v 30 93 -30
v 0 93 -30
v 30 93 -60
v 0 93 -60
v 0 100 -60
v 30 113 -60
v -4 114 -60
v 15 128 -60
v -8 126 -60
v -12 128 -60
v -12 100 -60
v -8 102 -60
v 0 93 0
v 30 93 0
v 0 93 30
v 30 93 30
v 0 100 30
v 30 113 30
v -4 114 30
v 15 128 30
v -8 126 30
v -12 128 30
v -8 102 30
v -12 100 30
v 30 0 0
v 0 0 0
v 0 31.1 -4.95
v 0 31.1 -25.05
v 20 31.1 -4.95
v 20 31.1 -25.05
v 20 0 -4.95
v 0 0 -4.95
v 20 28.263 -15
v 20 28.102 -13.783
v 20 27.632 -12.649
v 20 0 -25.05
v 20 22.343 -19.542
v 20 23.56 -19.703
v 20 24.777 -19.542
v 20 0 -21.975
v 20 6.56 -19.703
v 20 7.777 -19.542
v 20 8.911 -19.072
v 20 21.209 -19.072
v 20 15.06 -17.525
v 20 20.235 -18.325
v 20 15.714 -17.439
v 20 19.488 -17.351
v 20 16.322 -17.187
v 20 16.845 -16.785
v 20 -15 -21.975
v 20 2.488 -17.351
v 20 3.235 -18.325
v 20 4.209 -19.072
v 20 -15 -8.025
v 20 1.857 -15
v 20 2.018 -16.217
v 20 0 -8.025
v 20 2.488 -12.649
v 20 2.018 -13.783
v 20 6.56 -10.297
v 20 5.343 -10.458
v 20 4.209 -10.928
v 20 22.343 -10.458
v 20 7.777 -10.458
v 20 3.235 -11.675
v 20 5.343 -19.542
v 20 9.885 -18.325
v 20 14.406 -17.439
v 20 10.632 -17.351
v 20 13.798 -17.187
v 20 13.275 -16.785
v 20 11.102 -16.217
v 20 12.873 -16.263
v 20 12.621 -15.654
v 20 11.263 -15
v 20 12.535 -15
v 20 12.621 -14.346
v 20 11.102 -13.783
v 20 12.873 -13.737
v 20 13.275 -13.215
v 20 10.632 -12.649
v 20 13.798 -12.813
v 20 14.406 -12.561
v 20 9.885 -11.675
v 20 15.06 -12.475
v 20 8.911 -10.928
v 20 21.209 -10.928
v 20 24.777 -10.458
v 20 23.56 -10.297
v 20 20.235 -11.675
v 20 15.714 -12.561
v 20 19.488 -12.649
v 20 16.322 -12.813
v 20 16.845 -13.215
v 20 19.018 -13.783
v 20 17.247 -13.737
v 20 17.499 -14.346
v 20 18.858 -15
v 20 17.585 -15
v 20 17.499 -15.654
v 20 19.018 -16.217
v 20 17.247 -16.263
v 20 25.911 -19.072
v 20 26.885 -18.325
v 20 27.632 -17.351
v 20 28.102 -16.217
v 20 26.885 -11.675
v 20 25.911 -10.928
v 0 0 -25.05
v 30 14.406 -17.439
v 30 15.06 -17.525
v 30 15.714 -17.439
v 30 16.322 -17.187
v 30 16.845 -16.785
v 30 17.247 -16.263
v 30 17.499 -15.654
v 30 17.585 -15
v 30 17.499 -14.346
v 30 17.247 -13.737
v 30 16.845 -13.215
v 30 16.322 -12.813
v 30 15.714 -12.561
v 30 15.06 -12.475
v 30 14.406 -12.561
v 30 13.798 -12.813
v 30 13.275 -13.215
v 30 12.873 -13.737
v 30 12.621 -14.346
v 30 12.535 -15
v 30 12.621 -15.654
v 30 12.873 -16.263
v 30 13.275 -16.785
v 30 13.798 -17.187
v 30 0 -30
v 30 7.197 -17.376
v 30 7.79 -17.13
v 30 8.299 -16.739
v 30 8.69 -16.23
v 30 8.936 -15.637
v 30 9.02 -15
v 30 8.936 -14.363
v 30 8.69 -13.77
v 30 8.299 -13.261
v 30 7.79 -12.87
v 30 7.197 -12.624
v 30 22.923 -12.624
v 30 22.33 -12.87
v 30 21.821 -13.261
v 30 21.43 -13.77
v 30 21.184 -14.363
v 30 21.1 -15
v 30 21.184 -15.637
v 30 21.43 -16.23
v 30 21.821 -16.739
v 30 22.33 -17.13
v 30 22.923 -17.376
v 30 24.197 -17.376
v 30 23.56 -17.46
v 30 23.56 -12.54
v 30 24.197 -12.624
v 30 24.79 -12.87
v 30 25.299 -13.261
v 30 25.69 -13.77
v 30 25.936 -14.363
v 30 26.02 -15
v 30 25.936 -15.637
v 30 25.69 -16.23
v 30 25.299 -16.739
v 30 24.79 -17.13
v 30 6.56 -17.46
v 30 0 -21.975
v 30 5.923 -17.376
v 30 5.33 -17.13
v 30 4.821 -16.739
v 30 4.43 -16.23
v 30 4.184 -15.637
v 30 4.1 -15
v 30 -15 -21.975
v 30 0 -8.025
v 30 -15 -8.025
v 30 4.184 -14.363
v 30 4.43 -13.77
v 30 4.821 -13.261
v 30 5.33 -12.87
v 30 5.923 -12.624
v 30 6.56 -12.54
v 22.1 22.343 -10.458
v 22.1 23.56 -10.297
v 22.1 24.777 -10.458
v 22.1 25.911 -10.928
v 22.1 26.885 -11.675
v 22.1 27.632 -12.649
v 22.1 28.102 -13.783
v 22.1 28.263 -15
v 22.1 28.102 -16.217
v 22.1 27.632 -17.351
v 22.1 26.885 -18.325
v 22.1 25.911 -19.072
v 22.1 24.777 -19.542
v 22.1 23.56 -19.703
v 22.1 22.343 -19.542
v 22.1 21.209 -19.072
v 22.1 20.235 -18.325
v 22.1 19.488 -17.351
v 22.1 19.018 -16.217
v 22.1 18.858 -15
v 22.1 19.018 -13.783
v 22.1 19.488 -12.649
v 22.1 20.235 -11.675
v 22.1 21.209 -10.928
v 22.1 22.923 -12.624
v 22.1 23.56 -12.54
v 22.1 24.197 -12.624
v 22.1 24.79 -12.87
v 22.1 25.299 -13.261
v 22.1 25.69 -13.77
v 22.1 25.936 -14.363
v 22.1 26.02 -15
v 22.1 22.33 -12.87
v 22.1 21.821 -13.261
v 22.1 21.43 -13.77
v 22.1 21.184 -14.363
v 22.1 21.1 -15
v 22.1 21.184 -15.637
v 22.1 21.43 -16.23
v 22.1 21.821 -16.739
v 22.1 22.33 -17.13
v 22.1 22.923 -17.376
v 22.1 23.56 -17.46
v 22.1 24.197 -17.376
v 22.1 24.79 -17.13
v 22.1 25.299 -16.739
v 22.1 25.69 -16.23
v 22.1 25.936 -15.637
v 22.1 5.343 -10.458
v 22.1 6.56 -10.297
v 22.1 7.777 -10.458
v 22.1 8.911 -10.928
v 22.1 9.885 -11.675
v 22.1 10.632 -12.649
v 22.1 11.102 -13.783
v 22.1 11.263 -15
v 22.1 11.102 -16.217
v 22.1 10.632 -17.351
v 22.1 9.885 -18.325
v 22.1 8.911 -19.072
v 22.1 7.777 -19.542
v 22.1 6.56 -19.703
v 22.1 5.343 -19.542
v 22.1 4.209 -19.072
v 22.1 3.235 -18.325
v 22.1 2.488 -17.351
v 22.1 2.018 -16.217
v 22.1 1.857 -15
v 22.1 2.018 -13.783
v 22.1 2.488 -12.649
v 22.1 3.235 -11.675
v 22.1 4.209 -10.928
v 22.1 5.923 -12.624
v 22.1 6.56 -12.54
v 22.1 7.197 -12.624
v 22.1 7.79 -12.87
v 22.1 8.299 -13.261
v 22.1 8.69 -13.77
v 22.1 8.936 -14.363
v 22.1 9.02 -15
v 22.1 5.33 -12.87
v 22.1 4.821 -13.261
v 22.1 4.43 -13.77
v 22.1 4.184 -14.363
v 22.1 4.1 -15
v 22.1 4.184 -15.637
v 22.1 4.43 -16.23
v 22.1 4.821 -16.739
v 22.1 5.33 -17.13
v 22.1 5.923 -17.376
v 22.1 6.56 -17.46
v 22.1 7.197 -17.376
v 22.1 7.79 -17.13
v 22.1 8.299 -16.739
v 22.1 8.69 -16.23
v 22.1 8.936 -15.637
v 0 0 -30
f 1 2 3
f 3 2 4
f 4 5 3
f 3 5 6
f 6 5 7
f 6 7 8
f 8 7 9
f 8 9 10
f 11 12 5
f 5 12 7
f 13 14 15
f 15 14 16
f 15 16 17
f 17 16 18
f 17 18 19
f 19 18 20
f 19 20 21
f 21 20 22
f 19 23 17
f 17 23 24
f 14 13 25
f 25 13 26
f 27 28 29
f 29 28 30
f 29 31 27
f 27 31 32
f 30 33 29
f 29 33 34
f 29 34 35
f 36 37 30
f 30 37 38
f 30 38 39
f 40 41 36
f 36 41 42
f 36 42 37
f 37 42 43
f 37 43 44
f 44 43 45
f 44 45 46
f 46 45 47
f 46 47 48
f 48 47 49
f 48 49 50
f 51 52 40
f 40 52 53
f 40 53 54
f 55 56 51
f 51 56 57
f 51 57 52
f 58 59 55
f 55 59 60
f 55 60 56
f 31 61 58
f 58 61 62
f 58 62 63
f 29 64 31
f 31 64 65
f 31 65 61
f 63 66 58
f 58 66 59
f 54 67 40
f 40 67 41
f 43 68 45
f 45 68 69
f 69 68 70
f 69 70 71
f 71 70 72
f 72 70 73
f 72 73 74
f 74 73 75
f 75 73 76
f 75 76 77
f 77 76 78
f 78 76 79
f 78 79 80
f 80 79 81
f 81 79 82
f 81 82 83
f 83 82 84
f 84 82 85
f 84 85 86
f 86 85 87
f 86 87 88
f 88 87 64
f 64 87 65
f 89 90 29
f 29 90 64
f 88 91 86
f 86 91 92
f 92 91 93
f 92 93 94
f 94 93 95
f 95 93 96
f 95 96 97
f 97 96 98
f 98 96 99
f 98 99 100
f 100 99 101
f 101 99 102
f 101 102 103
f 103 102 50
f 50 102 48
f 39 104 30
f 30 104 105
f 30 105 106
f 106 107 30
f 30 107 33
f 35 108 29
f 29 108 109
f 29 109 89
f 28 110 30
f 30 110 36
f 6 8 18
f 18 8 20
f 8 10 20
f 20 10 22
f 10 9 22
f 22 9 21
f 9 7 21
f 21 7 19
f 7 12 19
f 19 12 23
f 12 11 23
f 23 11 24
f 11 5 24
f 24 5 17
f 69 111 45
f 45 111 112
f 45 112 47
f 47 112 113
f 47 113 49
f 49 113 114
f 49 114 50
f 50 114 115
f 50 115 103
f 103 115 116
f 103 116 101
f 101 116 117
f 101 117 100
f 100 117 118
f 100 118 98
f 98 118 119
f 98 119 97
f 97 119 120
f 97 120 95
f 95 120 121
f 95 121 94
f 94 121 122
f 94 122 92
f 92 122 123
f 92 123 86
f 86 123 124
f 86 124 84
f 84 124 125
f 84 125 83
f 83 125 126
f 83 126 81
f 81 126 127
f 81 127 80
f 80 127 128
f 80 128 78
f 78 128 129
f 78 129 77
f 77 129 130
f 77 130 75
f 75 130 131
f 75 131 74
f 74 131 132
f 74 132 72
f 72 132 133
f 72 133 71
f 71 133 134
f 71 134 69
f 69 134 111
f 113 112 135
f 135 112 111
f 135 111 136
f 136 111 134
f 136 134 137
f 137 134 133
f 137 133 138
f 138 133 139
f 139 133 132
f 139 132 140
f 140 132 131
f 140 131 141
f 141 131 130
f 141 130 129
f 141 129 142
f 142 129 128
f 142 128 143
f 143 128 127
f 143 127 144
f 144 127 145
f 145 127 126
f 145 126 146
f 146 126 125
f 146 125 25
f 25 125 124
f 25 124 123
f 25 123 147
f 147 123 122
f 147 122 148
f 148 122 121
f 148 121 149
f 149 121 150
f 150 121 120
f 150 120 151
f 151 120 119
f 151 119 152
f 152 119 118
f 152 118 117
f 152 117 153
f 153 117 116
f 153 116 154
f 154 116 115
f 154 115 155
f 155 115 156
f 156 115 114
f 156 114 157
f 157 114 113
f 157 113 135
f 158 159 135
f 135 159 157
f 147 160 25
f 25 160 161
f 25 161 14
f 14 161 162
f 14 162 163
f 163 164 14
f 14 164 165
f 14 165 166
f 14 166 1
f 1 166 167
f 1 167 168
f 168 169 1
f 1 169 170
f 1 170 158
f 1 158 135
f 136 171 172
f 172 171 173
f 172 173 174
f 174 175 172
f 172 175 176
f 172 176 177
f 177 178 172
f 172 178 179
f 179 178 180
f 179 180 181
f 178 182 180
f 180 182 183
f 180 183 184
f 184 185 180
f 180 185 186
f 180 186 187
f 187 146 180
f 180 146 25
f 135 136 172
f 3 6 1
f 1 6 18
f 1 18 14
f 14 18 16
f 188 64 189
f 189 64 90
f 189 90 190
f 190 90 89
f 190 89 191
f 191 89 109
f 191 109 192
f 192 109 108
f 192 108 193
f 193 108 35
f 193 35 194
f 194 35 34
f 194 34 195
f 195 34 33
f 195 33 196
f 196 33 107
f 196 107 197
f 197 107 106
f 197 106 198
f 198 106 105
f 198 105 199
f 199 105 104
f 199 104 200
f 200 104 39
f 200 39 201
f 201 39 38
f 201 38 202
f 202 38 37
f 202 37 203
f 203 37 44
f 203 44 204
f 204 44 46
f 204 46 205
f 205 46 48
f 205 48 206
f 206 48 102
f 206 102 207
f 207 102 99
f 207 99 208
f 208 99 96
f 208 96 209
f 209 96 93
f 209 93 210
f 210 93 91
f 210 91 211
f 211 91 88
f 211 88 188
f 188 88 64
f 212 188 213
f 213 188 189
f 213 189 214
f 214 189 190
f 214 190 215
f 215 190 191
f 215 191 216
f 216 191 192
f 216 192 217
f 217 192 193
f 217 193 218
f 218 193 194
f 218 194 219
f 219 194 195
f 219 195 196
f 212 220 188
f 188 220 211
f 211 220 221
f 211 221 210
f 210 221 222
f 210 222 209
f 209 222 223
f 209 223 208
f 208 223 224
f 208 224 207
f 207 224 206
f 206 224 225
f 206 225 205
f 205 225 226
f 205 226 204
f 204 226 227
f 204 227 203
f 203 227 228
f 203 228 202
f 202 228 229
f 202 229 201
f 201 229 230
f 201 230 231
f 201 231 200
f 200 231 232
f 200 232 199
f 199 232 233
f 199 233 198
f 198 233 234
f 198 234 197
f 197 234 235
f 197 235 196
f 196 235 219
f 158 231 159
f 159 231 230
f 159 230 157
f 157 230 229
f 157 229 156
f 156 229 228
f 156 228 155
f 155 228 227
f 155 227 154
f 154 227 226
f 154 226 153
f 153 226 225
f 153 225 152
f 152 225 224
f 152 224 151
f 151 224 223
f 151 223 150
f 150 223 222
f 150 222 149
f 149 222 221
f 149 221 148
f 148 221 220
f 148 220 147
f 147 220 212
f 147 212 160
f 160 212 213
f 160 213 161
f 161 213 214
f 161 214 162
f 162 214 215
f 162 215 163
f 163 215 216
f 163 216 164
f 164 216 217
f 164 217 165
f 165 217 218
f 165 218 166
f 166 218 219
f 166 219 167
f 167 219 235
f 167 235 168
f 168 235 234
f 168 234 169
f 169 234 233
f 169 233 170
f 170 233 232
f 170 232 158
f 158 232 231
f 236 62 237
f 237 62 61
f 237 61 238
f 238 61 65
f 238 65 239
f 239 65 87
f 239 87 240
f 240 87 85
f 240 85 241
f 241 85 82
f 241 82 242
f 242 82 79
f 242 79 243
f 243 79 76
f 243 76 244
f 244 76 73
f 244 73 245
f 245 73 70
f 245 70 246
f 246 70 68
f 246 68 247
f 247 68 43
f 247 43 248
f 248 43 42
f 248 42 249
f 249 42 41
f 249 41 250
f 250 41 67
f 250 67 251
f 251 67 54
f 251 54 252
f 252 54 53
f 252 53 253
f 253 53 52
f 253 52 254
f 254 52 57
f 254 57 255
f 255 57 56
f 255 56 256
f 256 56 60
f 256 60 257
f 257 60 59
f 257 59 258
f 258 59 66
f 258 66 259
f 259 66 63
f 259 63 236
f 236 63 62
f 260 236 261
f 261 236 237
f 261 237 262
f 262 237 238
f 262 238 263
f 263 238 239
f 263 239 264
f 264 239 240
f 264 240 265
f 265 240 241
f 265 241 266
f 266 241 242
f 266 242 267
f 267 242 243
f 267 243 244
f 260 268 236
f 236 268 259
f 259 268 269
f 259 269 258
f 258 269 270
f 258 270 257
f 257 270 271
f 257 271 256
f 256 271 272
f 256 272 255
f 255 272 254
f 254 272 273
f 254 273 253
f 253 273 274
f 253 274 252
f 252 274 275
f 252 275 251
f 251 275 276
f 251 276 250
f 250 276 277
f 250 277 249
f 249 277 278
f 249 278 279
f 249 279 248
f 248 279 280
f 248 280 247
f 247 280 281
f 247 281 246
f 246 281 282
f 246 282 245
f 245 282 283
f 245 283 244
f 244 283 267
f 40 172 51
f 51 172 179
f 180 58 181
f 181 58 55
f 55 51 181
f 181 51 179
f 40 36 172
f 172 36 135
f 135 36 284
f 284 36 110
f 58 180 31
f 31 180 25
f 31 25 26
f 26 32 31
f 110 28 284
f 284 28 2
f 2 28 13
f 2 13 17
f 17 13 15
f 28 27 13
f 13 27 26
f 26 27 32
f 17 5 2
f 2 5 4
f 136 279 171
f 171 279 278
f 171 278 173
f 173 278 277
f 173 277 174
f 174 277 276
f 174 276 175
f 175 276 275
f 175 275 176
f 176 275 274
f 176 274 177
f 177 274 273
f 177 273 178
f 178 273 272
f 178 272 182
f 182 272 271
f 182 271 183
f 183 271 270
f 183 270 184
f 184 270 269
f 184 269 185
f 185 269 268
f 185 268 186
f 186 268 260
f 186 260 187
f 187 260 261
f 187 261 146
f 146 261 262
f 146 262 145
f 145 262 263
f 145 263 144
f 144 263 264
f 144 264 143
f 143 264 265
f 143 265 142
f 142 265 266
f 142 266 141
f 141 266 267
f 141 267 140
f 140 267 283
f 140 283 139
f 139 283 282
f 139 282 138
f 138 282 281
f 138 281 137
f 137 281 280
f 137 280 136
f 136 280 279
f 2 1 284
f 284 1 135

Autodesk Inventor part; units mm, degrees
ref_plane "YZ Plane" through (0, 0, 0) normal (1, 0, 0) x (0, 1, 0)
ref_plane "XZ Plane" through (0, 0, 0) normal (0, 1, 0) x (-1, 0, 0)
sketch "Sketch1" plane through (0, 0, 0) normal (0, 0, 1) x (1, 0, 0)
  line L0 (0, 0) -> (25, 0)
  line L1 (25, 0) -> (25, 40)
  line L2 (25, 40) -> (0, 40)
  line L3 (0, 40) -> (0, 0)
  dimension "d1" = 25
  dimension "d2" = 40
  dimension "d3" = 25
extrude "Extrusion1" add sketch "Sketch1" against normal blind 30
sketch "Sketch2" plane through (25, 0, 0) normal (1, 0, 0) x (0, 0, -1)
  line L0 (0, 0) -> (30, 0) projected
  circle A0 centre (15, 6.56) radius 2.46
extrude "Extrusion2" cut sketch "Sketch2" against normal blind 30
sketch "Sketch3" plane through (0, 0, 0) normal (-1, 0, 0) x (0, 0, 1)
  line L0 (0, 0) -> (-30, 0) projected
  line L1 (-25.05, 0) -> (-4.95, 0)
  line L2 (-4.95, 0) -> (-4.95, 33.12)
  line L3 (-4.95, 33.12) -> (-25.05, 33.12)
  line L4 (-25.05, 33.12) -> (-25.05, 0)
  dimension "d11" = 20.1
extrude "Extrusion3" cut sketch "Sketch3" against normal blind 20
sketch "Sketch4" plane through (0, 0, 0) normal (0, -1, 0) x (1, 0, 0)
  line L0 (20, -4.95) -> (20, -25.05) projected
  line L1 (20, -15) -> (25, -15)
  line L2 (25, 0) -> (25, -30) projected
  line L3 (20, -8.025) -> (25, -8.025)
  line L4 (25, -8.025) -> (25, -21.975)
  line L5 (25, -21.975) -> (20, -21.975)
  line L6 (20, -21.975) -> (20, -8.025)
  line L7 (20, -8.025) -> (25, -21.975) construction
  line L8 (25, -8.025) -> (20, -21.975) construction
  line L9 (25, -12.54) -> (25, -17.46) projected
  point P0 (0, 0)
  point P1 (22.5, -15)
  dimension "d14" = 13.95
extrude "Extrusion4" add sketch "Sketch4" along normal blind 15
sketch "Sketch5" plane through (20, 0, 0) normal (-1, 0, 0) x (0, 0, 1)
  circle A0 centre (-15, 6.56) radius 2.46 projected
  circle A1 centre (-15, 6.56) radius 4.7025
  circle A2 centre (-15, 6.56) radius 2.46 projected
  circle A3 centre (-15, 6.56) radius 2.46
  point P0 (0, 0)
  dimension "d17" = 9.405
extrude "Extrusion5" cut sketch "Sketch5" against normal blind 2.1
sketch "Sketch6" plane through (25, 0, 0) normal (1, 0, 0) x (0, 0, -1)
  circle A0 centre (15, 6.56) radius 4.7025 projected
  line L0 (15, 6.56) -> (15, 23.56)
  circle A1 centre (15, 23.56) radius 2.46
  point P0 (0, 0)
  dimension "d20" = 17
  dimension "d21" = 4.92
extrude "Extrusion6" cut sketch "Sketch6" against normal blind 10 contours A1
sketch "Sketch7" plane through (20, 0, 0) normal (-1, 0, 0) x (0, 0, 1)
  circle A0 centre (-15, 23.56) radius 2.46 projected
  circle A1 centre (-15, 23.56) radius 4.7025
  point P0 (0, 0)
  dimension "d24" = 9.405
extrude "Extrusion7" cut sketch "Sketch7" against normal blind 2.1
sketch "Sketch9" plane through (25, 0, 0) normal (1, 0, 0) x (0, 0, -1)
  circle A0 centre (15, 6.56) radius 2.46 projected
  circle A1 centre (15, 6.56) radius 2.46
  circle A2 centre (15, 23.56) radius 2.46 projected
  circle A3 centre (15, 23.56) radius 2.46
  line L0 (30, 40) -> (30, 0) projected
  line L1 (30, 0) -> (30, 40)
  line L2 (30, 40) -> (0, 40)
  line L3 (0, 40) -> (0, 0)
  line L4 (0, 0) -> (8.025, 0) projected
  line L5 (21.975, 0) -> (21.975, -15)
  line L6 (21.975, -15) -> (8.025, -15)
  line L7 (8.025, -15) -> (8.025, 0)
  line L8 (0, 0) -> (8.025, 0)
  line L9 (21.975, 0) -> (30, 0)
extrude "Extrusion8" add sketch "Sketch9" along normal blind 5
sketch "Sketch10" plane through (0, 40, 0) normal (0, 1, 0) x (1, 0, 0)
  line L0 (0, 30) -> (30, 30) projected
  line L1 (30, 0) -> (0, 0) projected
  line L2 (0, 30) -> (30, 30)
  line L3 (30, 30) -> (30, 0)
  line L4 (30, 0) -> (0, 0)
  line L5 (0, 0) -> (0, 30)
extrude "Extrusion9" add sketch "Sketch10" along normal blind 30
sketch "Sketch12" plane through (30, 0, 0) normal (1, 0, 0) x (0, 0, -1)
  circle A0 centre (15, 6.56) radius 2.46 projected
  line L0 (15, 6.56) -> (15, 15.06)
  circle A1 centre (15, 15.06) radius 2.525
  point P0 (0, 0)
  dimension "d31" = 8.5
  dimension "d33" = 5.05
extrude "Extrusion10" cut sketch "Sketch12" against normal blind 30 contours A1
sketch "Sketch14" plane through (0, 0, 0) normal (0, 0, 1) x (1, 0, 0)
  line L0 (30, 70) -> (0, 70) projected
  line L1 (0, 70) -> (0, 85)
  line L2 (30, 0) -> (30, 70) projected
  line L3 (30, 113) -> (30, 70)
  line L4 (30, 105) -> (30, 100)
  line L5 (-12, 128) -> (15, 128)
  line L6 (-8, 126) -> (-12, 128)
  line L7 (-8, 126) -> (-4, 114)
  line L8 (-8, 102) -> (-12, 100)
  line L9 (-8, 102) -> (-4, 114)
  line L10 (30, 113) -> (15, 128)
  line L11 (0, 100) -> (-12, 100)
  line L12 (0, 100) -> (0, 85)
  point P0 (0, 0)
  dimension "d69" = 28
  dimension "d74" = 12
extrude "Extrusion12" add sketch "Sketch14" against normal blind 30
sketch "Sketch15" plane through (0, 0, -25.05) normal (-1, 0, 0) x (0, 0, 1)
  line L0 (0, 33.12) -> (20.1, 33.12) projected
  line L1 (20.1, 33.12) -> (20.1, 0) projected
  line L2 (0, 33.12) -> (20.1, 33.12)
  line L3 (20.1, 33.12) -> (20.1, 31.1)
  line L4 (20.1, 31.1) -> (0, 31.1)
  line L5 (0, 31.1) -> (0, 33.12)
  point P0 (25.05, 0)
  dimension "d57" = 2.02
extrude "Extrusion13" add sketch "Sketch15" against normal blind 20
sketch "Sketch21" plane through (0, 0, 0) normal (0, 0, 1) x (1, 0, 0)
  line L0 (0, 100) -> (-12, 100) projected
  line L1 (0, 100) -> (-12, 100)
  line L2 (-12, 100) -> (-8, 102) projected
  line L3 (-12, 100) -> (-8, 102)
  line L4 (-8, 102) -> (-4, 114) projected
  line L5 (-8, 102) -> (-4, 114)
  line L6 (-4, 114) -> (-8, 126) projected
  line L7 (-4, 114) -> (-8, 126)
  line L8 (-8, 126) -> (-12, 128) projected
  line L9 (-8, 126) -> (-12, 128)
  line L10 (-12, 128) -> (15, 128) projected
  line L11 (-12, 128) -> (15, 128)
  line L12 (15, 128) -> (30, 113) projected
  line L13 (15, 128) -> (30, 113)
  line L14 (30, 113) -> (30, 93)
  line L15 (30, 0) -> (30, 113) projected
  line L16 (30, 93) -> (0, 93)
  line L17 (0, 93) -> (0, 100)
  point P0 (0, 0)
  dimension "d75" = 20
  dimension "d76" = 30
extrude "Extrusion14" add sketch "Sketch21" along normal blind 30
ref_plane "Work Plane1" through (0, 0, -15) normal (0, 0, 1) x (1, 0, 0)
mirror "Mirror1" about plane through (0, 0, -15) normal (0, 0, 1) of "Extrusion14"
properties part number "rec_b_24mm_x_90mm"
